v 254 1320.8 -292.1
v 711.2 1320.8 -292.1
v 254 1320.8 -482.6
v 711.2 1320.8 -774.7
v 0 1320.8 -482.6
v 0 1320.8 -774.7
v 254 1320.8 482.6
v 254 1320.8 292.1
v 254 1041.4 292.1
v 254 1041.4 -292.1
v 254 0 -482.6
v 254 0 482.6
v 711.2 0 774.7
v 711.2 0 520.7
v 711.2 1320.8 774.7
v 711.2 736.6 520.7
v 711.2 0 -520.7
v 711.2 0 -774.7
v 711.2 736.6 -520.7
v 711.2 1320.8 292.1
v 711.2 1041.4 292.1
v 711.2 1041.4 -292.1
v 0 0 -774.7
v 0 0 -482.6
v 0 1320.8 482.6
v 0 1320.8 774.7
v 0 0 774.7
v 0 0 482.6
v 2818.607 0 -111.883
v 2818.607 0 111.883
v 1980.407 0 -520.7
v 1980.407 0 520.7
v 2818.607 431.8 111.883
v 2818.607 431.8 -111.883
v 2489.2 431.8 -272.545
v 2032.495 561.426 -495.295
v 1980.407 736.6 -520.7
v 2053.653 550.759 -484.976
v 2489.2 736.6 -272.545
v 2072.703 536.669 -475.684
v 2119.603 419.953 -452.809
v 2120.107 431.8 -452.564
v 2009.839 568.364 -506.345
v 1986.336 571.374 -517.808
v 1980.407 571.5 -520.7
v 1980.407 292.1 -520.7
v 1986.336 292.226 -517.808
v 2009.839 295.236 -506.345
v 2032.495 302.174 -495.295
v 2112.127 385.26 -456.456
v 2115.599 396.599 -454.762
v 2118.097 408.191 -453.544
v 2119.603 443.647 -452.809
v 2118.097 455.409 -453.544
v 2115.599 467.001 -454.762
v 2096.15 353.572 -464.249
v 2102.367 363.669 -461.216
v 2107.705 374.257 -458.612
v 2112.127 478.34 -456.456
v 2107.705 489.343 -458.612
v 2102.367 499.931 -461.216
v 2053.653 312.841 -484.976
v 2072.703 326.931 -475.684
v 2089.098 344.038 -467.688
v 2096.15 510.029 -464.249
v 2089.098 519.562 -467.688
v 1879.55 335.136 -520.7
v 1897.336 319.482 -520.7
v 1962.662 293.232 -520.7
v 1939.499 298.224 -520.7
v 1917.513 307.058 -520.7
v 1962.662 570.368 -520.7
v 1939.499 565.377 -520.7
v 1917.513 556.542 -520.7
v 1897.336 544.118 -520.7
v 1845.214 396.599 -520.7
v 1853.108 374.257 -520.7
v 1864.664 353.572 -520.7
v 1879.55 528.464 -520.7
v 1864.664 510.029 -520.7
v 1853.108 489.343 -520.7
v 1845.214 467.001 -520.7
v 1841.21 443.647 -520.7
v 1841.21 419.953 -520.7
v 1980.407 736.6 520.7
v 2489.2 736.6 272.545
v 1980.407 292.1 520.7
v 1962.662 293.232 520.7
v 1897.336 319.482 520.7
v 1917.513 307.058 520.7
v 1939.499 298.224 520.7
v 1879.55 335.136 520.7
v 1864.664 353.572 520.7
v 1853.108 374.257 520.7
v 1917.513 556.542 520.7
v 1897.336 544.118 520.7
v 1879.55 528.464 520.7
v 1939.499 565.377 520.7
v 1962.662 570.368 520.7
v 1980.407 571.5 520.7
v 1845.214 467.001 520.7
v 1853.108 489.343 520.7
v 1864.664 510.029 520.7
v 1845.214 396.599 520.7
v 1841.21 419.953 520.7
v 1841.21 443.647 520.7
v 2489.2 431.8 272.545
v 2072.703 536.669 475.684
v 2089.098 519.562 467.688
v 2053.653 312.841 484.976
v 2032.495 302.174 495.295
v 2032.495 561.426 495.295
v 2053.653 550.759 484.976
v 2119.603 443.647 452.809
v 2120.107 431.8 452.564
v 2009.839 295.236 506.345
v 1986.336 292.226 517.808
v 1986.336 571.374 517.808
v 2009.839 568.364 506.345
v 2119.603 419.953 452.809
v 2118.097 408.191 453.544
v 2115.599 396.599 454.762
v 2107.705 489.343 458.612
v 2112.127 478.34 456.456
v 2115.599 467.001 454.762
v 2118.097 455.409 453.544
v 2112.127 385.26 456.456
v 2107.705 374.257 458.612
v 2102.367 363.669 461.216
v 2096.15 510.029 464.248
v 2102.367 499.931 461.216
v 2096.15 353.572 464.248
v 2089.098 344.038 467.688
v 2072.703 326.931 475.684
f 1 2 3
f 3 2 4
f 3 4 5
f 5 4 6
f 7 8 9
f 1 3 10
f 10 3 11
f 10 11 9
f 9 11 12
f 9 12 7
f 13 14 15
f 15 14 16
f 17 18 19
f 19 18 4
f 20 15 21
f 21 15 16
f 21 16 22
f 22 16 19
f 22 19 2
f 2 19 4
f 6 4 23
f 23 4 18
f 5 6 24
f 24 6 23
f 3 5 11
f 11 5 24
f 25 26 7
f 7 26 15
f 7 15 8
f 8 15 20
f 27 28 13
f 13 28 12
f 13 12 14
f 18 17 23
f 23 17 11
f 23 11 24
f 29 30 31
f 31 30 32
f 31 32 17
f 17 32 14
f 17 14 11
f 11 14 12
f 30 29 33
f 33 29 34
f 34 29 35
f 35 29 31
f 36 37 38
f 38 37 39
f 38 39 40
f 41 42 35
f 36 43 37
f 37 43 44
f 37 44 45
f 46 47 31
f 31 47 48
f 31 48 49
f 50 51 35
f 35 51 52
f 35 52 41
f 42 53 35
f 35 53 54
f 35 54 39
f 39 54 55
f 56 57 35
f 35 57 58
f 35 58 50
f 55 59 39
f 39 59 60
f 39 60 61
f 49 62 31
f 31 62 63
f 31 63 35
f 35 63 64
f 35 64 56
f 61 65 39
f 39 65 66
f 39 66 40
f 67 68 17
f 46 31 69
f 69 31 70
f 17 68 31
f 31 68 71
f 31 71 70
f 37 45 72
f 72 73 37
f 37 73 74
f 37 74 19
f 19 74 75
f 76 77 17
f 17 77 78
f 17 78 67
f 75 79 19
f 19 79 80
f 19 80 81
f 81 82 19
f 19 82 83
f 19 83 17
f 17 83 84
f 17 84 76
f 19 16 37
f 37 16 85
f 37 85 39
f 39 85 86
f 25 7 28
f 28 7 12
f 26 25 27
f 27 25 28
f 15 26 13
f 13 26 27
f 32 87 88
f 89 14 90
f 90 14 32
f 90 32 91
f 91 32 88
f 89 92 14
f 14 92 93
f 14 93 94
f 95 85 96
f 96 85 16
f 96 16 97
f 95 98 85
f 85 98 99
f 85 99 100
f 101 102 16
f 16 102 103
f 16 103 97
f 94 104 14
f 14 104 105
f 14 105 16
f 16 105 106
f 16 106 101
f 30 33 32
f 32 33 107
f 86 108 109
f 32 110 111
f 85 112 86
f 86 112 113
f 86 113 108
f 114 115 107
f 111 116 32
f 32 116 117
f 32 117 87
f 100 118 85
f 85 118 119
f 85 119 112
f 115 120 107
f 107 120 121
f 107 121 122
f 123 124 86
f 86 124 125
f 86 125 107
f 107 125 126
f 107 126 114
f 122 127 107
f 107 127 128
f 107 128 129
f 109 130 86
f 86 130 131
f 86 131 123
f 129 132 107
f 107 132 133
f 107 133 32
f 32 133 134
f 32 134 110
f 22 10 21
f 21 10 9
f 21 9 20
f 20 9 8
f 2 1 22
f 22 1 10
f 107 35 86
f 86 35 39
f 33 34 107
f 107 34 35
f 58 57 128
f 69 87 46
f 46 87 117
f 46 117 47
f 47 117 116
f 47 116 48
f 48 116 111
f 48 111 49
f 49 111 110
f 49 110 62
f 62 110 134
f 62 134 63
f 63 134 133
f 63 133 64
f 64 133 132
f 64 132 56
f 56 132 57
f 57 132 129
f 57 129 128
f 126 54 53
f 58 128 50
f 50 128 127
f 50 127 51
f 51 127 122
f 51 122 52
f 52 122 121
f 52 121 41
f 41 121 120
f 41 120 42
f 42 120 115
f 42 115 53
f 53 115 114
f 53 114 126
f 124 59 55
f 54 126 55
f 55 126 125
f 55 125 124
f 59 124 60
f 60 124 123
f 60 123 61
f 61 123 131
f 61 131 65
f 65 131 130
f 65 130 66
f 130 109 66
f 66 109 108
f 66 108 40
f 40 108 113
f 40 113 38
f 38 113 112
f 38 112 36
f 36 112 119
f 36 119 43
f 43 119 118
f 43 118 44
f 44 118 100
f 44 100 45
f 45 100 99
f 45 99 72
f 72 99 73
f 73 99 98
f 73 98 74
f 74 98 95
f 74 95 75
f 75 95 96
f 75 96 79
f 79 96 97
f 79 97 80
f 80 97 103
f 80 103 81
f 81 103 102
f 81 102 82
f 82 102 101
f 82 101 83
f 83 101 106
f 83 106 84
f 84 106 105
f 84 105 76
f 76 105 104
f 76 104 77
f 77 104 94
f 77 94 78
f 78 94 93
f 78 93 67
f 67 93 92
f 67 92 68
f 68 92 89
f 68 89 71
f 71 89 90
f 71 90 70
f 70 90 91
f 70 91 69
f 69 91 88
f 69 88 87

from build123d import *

# Parameters (mm, degrees)
BOSS_EXTRUDE1_DEPTH = 1320.8
BOSS_EXTRUDE2_DEPTH = 736.6
SKETCH2_W           = 584.2
SKETCH2_H           = 279.4
CUT_EXTRUDE1_DEPTH  = 736.6
SKETCH3_W           = 745.502408031
SKETCH3_H           = 618.456083572
CUT_EXTRUDE2_DEPTH  = 3372.515688067
SKETCH4_R           = 139.7
CUT_EXTRUDE3_DEPTH  = 3372.515688067


with BuildPart() as part:
    # Sketch1 → Boss-Extrude1 (new body)
    with BuildSketch(Plane(origin=(0, 0, 0), x_dir=(1, 0, 0), z_dir=(0, 1, 0))):
        Polygon((254, 0), (711.2, 0), (711.2, 520.7), (711.2, 774.7), (0, 774.7), (0, 482.6), (254, 482.6), (254, 292.1), align=None)
    boss_extrude1 = extrude(amount=BOSS_EXTRUDE1_DEPTH)

    # Sketch1<3> → Boss-Extrude2 (add)
    with BuildSketch(Plane(origin=(0, 0, 0), x_dir=(1, 0, 0), z_dir=(0, 1, 0))):
        Polygon((2818.60678969, 0), (2818.60678969, 111.882544264), (1980.40678969, 520.7), (711.2, 520.7), (711.2, 0), align=None)
    boss_extrude2 = extrude(amount=BOSS_EXTRUDE2_DEPTH)

    # Mirror2: Boss-Extrude1, Boss-Extrude2 across plane
    add(boss_extrude1.mirror(Plane(origin=(0, 1320.8, 0), x_dir=(1, 0, 0), z_dir=(0, 0, -1))))
    add(boss_extrude2.mirror(Plane(origin=(0, 1320.8, 0), x_dir=(1, 0, 0), z_dir=(0, 0, -1))))

    # Sketch2 → Cut-Extrude1 (cut)
    with BuildSketch(Plane(origin=(711.2, 0, 0), x_dir=(0, 0, -1), z_dir=(1, 0, 0))):
        with Locations((0, 1181.1)):
            Rectangle(SKETCH2_W, SKETCH2_H)
    extrude(amount=-CUT_EXTRUDE1_DEPTH, mode=Mode.SUBTRACT)

    # Sketch3 → Cut-Extrude2 (cut, through all)
    with BuildSketch(Plane.XY.offset(520.7)):
        with Locations((2861.951204016, 741.028041786)):
            Rectangle(SKETCH3_W, SKETCH3_H)
    extrude(amount=-CUT_EXTRUDE2_DEPTH, mode=Mode.SUBTRACT)

    # Sketch4 → Cut-Extrude3 (cut, through all)
    with BuildSketch(Plane.XY.offset(520.7)):
        with Locations((1980.40678969, 431.8)):
            Circle(SKETCH4_R)
    extrude(amount=-CUT_EXTRUDE3_DEPTH, mode=Mode.SUBTRACT)


solid = part.part
